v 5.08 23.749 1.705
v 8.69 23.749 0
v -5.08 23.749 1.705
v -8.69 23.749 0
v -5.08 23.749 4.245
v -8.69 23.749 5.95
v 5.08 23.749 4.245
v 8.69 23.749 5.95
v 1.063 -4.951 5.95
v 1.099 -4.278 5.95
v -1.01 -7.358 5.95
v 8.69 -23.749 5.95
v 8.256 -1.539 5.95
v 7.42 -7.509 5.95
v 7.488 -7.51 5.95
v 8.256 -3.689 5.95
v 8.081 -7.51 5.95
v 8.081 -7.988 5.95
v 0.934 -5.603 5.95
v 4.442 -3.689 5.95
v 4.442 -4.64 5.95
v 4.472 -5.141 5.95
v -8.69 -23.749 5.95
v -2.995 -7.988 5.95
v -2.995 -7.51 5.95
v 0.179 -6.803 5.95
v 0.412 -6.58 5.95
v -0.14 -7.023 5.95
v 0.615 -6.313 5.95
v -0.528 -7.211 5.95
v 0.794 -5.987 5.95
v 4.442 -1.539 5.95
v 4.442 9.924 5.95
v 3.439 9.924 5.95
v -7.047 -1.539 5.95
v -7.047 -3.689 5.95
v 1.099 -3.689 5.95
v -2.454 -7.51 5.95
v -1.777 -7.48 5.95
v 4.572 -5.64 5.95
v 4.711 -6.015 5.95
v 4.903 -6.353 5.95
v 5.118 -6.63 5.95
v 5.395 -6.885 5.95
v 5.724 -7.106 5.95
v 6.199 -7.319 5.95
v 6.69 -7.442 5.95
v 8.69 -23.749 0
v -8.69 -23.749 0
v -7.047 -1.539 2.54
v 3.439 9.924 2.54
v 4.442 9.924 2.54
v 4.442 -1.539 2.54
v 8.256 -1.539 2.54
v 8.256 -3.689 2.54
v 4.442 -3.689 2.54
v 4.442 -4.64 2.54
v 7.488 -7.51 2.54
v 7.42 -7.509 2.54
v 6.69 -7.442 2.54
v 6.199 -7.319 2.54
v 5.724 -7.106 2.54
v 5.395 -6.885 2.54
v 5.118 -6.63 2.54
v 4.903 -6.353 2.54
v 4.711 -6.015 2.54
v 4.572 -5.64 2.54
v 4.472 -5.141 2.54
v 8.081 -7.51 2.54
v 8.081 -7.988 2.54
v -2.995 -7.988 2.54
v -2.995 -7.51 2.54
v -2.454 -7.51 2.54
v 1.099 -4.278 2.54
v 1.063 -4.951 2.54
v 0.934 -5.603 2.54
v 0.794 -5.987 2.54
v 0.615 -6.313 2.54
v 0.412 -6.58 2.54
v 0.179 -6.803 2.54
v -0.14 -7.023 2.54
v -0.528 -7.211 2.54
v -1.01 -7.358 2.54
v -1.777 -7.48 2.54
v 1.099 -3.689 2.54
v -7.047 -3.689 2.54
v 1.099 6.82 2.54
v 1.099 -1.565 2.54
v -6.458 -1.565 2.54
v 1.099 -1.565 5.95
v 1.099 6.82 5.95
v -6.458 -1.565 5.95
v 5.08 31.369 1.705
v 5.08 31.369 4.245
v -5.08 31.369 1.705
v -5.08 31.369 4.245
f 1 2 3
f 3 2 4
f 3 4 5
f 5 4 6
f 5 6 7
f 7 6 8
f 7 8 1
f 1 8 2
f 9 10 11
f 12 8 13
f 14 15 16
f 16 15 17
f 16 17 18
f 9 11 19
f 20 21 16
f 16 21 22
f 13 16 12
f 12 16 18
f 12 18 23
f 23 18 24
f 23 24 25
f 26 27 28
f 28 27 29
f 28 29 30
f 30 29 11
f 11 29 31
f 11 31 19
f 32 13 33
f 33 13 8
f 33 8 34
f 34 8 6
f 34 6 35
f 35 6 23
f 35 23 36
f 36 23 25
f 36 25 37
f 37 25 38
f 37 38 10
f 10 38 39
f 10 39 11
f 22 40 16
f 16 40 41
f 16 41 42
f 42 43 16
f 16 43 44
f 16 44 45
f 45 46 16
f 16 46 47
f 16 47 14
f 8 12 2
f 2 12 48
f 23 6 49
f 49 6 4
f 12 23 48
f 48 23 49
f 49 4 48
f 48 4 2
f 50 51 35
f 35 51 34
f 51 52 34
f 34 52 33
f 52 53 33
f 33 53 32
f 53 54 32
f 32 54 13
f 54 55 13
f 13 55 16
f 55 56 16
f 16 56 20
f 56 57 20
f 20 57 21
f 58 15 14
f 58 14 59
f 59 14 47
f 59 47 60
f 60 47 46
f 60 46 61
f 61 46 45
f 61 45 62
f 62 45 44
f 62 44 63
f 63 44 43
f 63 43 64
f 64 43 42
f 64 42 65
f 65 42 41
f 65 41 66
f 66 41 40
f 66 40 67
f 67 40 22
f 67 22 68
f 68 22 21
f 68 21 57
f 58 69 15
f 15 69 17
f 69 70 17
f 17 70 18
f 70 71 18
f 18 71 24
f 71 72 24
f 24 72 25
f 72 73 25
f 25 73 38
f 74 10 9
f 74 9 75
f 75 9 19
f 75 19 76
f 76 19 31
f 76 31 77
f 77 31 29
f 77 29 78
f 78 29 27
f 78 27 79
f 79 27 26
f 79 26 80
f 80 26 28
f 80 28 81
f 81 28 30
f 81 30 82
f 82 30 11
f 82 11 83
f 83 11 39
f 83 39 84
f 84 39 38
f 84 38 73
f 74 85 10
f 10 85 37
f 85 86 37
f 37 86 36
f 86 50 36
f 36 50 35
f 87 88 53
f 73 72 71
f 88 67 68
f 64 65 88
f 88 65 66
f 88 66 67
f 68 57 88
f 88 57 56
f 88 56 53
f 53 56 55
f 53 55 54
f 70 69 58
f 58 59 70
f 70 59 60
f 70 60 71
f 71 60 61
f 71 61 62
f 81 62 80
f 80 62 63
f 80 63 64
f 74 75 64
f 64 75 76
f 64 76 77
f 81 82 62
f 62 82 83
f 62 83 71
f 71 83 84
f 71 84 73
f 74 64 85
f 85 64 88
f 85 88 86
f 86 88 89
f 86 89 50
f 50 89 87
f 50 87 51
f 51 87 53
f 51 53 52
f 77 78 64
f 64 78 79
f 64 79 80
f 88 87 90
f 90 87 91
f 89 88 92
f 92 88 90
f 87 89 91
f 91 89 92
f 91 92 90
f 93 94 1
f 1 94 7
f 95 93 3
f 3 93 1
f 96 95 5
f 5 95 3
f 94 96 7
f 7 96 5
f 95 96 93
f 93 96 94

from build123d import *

# Parameters (mm, degrees)
SKETCH1_W           = 17.38
SKETCH1_H           = 47.498
BOSS_EXTRUDE1_DEPTH = 5.95
CUT_EXTRUDE1_DEPTH  = 3.41
SKETCH3_W           = 10.16
SKETCH3_H           = 2.54
BOSS_EXTRUDE2_DEPTH = 7.62


with BuildPart() as part:
    # Sketch1 → Boss-Extrude1 (new body)
    with BuildSketch(Plane.XY):
        Rectangle(SKETCH1_W, SKETCH1_H)
    extrude(amount=BOSS_EXTRUDE1_DEPTH)

    # Sketch2 → Cut-Extrude1 (cut)
    with BuildSketch(Plane.XY.offset(5.95)):
        with BuildLine():
            Line((3.438639944, 9.924455156), (4.442467735, 9.924455156))
            Line((4.442467735, 9.924455156), (4.442467735, -1.539332851))
            Line((4.442467735, -1.539332851), (8.256267, -1.539332851))
            Line((8.256267, -1.539332851), (8.256267, -3.688793102))
            Line((8.256267, -3.688793102), (4.442467735, -3.688793102))
            Line((4.442467735, -3.688793102), (4.442467735, -4.640377068))
            add(Edge.make_bspline(
                [(4.442467735, -4.640377068), (4.443669751, -4.751273799), (4.44601529, -4.967670812), (4.491573849, -5.280067729), (4.547428573, -5.576451443), (4.638679375, -5.850580816), (4.750284326, -6.109988852), (4.893045349, -6.345559529), (5.054243786, -6.56764849), (5.24539936, -6.764114691), (5.45895144, -6.939280612), (5.690437988, -7.094166195), (5.94412251, -7.21948209), (6.213330934, -7.330421399), (6.505331291, -7.411643013), (6.816896163, -7.464731494), (7.145657743, -7.505427509), (7.371717246, -7.508487842), (7.487536425, -7.510055771)],
                knots=[0, 0, 0, 0, 1.118672576, 2.182908393, 3.183164075, 4.160436979, 5.09410661, 6.029127428, 6.936133637, 7.860118871, 8.788194062, 9.721948199, 10.665788183, 11.640878679, 12.658961174, 13.718515742, 14.83110584, 16, 16, 16, 16], degree=3))
            Line((7.487536425, -7.510055771), (8.080877015, -7.510055771))
            Line((8.080877015, -7.510055771), (8.080877015, -7.987713605))
            Line((8.080877015, -7.987713605), (-2.994814002, -7.987713605))
            Line((-2.994814002, -7.987713605), (-2.994814002, -7.510055771))
            Line((-2.994814002, -7.510055771), (-2.453717238, -7.510055771))
            add(Edge.make_bspline(
                [(-2.453717238, -7.510055771), (-2.258238674, -7.505911681), (-1.884825234, -7.49799542), (-1.351318965, -7.434422338), (-0.871964817, -7.331943938), (-0.442786011, -7.18885029), (-0.068953302, -6.991569685), (0.256975704, -6.754501307), (0.523821338, -6.462132653), (0.738539375, -6.124798114), (0.904653386, -5.736728404), (1.016200957, -5.296067491), (1.08879249, -4.804482414), (1.095404798, -4.459053985), (1.0988629, -4.278401991)],
                knots=[0, 0, 0, 0, 1.266752721, 2.419817719, 3.476234114, 4.440044039, 5.341650734, 6.205967801, 7.039034094, 7.891156267, 8.786794986, 9.762669761, 10.829922107, 12, 12, 12, 12], degree=3))
            Line((1.0988629, -4.278401991), (1.0988629, -3.688793102))
            Line((1.0988629, -3.688793102), (-7.047442184, -3.688793102))
            Line((-7.047442184, -3.688793102), (-7.047442184, -1.539332851))
            Line((-7.047442184, -1.539332851), (3.438639944, 9.924455156))
        make_face()
        Polygon((1.0988629, 6.819679237), (-6.457833296, -1.565454764), (1.0988629, -1.565454764), align=None, mode=Mode.SUBTRACT)
    extrude(amount=-CUT_EXTRUDE1_DEPTH, mode=Mode.SUBTRACT)

    # Sketch3 → Boss-Extrude2 (add)
    with BuildSketch(Plane(origin=(0, 23.749, 0), x_dir=(1, 0, 0), z_dir=(0, 1, 0))):
        with Locations((0, -2.975)):
            Rectangle(SKETCH3_W, SKETCH3_H)
    extrude(amount=BOSS_EXTRUDE2_DEPTH)


solid = part.part
